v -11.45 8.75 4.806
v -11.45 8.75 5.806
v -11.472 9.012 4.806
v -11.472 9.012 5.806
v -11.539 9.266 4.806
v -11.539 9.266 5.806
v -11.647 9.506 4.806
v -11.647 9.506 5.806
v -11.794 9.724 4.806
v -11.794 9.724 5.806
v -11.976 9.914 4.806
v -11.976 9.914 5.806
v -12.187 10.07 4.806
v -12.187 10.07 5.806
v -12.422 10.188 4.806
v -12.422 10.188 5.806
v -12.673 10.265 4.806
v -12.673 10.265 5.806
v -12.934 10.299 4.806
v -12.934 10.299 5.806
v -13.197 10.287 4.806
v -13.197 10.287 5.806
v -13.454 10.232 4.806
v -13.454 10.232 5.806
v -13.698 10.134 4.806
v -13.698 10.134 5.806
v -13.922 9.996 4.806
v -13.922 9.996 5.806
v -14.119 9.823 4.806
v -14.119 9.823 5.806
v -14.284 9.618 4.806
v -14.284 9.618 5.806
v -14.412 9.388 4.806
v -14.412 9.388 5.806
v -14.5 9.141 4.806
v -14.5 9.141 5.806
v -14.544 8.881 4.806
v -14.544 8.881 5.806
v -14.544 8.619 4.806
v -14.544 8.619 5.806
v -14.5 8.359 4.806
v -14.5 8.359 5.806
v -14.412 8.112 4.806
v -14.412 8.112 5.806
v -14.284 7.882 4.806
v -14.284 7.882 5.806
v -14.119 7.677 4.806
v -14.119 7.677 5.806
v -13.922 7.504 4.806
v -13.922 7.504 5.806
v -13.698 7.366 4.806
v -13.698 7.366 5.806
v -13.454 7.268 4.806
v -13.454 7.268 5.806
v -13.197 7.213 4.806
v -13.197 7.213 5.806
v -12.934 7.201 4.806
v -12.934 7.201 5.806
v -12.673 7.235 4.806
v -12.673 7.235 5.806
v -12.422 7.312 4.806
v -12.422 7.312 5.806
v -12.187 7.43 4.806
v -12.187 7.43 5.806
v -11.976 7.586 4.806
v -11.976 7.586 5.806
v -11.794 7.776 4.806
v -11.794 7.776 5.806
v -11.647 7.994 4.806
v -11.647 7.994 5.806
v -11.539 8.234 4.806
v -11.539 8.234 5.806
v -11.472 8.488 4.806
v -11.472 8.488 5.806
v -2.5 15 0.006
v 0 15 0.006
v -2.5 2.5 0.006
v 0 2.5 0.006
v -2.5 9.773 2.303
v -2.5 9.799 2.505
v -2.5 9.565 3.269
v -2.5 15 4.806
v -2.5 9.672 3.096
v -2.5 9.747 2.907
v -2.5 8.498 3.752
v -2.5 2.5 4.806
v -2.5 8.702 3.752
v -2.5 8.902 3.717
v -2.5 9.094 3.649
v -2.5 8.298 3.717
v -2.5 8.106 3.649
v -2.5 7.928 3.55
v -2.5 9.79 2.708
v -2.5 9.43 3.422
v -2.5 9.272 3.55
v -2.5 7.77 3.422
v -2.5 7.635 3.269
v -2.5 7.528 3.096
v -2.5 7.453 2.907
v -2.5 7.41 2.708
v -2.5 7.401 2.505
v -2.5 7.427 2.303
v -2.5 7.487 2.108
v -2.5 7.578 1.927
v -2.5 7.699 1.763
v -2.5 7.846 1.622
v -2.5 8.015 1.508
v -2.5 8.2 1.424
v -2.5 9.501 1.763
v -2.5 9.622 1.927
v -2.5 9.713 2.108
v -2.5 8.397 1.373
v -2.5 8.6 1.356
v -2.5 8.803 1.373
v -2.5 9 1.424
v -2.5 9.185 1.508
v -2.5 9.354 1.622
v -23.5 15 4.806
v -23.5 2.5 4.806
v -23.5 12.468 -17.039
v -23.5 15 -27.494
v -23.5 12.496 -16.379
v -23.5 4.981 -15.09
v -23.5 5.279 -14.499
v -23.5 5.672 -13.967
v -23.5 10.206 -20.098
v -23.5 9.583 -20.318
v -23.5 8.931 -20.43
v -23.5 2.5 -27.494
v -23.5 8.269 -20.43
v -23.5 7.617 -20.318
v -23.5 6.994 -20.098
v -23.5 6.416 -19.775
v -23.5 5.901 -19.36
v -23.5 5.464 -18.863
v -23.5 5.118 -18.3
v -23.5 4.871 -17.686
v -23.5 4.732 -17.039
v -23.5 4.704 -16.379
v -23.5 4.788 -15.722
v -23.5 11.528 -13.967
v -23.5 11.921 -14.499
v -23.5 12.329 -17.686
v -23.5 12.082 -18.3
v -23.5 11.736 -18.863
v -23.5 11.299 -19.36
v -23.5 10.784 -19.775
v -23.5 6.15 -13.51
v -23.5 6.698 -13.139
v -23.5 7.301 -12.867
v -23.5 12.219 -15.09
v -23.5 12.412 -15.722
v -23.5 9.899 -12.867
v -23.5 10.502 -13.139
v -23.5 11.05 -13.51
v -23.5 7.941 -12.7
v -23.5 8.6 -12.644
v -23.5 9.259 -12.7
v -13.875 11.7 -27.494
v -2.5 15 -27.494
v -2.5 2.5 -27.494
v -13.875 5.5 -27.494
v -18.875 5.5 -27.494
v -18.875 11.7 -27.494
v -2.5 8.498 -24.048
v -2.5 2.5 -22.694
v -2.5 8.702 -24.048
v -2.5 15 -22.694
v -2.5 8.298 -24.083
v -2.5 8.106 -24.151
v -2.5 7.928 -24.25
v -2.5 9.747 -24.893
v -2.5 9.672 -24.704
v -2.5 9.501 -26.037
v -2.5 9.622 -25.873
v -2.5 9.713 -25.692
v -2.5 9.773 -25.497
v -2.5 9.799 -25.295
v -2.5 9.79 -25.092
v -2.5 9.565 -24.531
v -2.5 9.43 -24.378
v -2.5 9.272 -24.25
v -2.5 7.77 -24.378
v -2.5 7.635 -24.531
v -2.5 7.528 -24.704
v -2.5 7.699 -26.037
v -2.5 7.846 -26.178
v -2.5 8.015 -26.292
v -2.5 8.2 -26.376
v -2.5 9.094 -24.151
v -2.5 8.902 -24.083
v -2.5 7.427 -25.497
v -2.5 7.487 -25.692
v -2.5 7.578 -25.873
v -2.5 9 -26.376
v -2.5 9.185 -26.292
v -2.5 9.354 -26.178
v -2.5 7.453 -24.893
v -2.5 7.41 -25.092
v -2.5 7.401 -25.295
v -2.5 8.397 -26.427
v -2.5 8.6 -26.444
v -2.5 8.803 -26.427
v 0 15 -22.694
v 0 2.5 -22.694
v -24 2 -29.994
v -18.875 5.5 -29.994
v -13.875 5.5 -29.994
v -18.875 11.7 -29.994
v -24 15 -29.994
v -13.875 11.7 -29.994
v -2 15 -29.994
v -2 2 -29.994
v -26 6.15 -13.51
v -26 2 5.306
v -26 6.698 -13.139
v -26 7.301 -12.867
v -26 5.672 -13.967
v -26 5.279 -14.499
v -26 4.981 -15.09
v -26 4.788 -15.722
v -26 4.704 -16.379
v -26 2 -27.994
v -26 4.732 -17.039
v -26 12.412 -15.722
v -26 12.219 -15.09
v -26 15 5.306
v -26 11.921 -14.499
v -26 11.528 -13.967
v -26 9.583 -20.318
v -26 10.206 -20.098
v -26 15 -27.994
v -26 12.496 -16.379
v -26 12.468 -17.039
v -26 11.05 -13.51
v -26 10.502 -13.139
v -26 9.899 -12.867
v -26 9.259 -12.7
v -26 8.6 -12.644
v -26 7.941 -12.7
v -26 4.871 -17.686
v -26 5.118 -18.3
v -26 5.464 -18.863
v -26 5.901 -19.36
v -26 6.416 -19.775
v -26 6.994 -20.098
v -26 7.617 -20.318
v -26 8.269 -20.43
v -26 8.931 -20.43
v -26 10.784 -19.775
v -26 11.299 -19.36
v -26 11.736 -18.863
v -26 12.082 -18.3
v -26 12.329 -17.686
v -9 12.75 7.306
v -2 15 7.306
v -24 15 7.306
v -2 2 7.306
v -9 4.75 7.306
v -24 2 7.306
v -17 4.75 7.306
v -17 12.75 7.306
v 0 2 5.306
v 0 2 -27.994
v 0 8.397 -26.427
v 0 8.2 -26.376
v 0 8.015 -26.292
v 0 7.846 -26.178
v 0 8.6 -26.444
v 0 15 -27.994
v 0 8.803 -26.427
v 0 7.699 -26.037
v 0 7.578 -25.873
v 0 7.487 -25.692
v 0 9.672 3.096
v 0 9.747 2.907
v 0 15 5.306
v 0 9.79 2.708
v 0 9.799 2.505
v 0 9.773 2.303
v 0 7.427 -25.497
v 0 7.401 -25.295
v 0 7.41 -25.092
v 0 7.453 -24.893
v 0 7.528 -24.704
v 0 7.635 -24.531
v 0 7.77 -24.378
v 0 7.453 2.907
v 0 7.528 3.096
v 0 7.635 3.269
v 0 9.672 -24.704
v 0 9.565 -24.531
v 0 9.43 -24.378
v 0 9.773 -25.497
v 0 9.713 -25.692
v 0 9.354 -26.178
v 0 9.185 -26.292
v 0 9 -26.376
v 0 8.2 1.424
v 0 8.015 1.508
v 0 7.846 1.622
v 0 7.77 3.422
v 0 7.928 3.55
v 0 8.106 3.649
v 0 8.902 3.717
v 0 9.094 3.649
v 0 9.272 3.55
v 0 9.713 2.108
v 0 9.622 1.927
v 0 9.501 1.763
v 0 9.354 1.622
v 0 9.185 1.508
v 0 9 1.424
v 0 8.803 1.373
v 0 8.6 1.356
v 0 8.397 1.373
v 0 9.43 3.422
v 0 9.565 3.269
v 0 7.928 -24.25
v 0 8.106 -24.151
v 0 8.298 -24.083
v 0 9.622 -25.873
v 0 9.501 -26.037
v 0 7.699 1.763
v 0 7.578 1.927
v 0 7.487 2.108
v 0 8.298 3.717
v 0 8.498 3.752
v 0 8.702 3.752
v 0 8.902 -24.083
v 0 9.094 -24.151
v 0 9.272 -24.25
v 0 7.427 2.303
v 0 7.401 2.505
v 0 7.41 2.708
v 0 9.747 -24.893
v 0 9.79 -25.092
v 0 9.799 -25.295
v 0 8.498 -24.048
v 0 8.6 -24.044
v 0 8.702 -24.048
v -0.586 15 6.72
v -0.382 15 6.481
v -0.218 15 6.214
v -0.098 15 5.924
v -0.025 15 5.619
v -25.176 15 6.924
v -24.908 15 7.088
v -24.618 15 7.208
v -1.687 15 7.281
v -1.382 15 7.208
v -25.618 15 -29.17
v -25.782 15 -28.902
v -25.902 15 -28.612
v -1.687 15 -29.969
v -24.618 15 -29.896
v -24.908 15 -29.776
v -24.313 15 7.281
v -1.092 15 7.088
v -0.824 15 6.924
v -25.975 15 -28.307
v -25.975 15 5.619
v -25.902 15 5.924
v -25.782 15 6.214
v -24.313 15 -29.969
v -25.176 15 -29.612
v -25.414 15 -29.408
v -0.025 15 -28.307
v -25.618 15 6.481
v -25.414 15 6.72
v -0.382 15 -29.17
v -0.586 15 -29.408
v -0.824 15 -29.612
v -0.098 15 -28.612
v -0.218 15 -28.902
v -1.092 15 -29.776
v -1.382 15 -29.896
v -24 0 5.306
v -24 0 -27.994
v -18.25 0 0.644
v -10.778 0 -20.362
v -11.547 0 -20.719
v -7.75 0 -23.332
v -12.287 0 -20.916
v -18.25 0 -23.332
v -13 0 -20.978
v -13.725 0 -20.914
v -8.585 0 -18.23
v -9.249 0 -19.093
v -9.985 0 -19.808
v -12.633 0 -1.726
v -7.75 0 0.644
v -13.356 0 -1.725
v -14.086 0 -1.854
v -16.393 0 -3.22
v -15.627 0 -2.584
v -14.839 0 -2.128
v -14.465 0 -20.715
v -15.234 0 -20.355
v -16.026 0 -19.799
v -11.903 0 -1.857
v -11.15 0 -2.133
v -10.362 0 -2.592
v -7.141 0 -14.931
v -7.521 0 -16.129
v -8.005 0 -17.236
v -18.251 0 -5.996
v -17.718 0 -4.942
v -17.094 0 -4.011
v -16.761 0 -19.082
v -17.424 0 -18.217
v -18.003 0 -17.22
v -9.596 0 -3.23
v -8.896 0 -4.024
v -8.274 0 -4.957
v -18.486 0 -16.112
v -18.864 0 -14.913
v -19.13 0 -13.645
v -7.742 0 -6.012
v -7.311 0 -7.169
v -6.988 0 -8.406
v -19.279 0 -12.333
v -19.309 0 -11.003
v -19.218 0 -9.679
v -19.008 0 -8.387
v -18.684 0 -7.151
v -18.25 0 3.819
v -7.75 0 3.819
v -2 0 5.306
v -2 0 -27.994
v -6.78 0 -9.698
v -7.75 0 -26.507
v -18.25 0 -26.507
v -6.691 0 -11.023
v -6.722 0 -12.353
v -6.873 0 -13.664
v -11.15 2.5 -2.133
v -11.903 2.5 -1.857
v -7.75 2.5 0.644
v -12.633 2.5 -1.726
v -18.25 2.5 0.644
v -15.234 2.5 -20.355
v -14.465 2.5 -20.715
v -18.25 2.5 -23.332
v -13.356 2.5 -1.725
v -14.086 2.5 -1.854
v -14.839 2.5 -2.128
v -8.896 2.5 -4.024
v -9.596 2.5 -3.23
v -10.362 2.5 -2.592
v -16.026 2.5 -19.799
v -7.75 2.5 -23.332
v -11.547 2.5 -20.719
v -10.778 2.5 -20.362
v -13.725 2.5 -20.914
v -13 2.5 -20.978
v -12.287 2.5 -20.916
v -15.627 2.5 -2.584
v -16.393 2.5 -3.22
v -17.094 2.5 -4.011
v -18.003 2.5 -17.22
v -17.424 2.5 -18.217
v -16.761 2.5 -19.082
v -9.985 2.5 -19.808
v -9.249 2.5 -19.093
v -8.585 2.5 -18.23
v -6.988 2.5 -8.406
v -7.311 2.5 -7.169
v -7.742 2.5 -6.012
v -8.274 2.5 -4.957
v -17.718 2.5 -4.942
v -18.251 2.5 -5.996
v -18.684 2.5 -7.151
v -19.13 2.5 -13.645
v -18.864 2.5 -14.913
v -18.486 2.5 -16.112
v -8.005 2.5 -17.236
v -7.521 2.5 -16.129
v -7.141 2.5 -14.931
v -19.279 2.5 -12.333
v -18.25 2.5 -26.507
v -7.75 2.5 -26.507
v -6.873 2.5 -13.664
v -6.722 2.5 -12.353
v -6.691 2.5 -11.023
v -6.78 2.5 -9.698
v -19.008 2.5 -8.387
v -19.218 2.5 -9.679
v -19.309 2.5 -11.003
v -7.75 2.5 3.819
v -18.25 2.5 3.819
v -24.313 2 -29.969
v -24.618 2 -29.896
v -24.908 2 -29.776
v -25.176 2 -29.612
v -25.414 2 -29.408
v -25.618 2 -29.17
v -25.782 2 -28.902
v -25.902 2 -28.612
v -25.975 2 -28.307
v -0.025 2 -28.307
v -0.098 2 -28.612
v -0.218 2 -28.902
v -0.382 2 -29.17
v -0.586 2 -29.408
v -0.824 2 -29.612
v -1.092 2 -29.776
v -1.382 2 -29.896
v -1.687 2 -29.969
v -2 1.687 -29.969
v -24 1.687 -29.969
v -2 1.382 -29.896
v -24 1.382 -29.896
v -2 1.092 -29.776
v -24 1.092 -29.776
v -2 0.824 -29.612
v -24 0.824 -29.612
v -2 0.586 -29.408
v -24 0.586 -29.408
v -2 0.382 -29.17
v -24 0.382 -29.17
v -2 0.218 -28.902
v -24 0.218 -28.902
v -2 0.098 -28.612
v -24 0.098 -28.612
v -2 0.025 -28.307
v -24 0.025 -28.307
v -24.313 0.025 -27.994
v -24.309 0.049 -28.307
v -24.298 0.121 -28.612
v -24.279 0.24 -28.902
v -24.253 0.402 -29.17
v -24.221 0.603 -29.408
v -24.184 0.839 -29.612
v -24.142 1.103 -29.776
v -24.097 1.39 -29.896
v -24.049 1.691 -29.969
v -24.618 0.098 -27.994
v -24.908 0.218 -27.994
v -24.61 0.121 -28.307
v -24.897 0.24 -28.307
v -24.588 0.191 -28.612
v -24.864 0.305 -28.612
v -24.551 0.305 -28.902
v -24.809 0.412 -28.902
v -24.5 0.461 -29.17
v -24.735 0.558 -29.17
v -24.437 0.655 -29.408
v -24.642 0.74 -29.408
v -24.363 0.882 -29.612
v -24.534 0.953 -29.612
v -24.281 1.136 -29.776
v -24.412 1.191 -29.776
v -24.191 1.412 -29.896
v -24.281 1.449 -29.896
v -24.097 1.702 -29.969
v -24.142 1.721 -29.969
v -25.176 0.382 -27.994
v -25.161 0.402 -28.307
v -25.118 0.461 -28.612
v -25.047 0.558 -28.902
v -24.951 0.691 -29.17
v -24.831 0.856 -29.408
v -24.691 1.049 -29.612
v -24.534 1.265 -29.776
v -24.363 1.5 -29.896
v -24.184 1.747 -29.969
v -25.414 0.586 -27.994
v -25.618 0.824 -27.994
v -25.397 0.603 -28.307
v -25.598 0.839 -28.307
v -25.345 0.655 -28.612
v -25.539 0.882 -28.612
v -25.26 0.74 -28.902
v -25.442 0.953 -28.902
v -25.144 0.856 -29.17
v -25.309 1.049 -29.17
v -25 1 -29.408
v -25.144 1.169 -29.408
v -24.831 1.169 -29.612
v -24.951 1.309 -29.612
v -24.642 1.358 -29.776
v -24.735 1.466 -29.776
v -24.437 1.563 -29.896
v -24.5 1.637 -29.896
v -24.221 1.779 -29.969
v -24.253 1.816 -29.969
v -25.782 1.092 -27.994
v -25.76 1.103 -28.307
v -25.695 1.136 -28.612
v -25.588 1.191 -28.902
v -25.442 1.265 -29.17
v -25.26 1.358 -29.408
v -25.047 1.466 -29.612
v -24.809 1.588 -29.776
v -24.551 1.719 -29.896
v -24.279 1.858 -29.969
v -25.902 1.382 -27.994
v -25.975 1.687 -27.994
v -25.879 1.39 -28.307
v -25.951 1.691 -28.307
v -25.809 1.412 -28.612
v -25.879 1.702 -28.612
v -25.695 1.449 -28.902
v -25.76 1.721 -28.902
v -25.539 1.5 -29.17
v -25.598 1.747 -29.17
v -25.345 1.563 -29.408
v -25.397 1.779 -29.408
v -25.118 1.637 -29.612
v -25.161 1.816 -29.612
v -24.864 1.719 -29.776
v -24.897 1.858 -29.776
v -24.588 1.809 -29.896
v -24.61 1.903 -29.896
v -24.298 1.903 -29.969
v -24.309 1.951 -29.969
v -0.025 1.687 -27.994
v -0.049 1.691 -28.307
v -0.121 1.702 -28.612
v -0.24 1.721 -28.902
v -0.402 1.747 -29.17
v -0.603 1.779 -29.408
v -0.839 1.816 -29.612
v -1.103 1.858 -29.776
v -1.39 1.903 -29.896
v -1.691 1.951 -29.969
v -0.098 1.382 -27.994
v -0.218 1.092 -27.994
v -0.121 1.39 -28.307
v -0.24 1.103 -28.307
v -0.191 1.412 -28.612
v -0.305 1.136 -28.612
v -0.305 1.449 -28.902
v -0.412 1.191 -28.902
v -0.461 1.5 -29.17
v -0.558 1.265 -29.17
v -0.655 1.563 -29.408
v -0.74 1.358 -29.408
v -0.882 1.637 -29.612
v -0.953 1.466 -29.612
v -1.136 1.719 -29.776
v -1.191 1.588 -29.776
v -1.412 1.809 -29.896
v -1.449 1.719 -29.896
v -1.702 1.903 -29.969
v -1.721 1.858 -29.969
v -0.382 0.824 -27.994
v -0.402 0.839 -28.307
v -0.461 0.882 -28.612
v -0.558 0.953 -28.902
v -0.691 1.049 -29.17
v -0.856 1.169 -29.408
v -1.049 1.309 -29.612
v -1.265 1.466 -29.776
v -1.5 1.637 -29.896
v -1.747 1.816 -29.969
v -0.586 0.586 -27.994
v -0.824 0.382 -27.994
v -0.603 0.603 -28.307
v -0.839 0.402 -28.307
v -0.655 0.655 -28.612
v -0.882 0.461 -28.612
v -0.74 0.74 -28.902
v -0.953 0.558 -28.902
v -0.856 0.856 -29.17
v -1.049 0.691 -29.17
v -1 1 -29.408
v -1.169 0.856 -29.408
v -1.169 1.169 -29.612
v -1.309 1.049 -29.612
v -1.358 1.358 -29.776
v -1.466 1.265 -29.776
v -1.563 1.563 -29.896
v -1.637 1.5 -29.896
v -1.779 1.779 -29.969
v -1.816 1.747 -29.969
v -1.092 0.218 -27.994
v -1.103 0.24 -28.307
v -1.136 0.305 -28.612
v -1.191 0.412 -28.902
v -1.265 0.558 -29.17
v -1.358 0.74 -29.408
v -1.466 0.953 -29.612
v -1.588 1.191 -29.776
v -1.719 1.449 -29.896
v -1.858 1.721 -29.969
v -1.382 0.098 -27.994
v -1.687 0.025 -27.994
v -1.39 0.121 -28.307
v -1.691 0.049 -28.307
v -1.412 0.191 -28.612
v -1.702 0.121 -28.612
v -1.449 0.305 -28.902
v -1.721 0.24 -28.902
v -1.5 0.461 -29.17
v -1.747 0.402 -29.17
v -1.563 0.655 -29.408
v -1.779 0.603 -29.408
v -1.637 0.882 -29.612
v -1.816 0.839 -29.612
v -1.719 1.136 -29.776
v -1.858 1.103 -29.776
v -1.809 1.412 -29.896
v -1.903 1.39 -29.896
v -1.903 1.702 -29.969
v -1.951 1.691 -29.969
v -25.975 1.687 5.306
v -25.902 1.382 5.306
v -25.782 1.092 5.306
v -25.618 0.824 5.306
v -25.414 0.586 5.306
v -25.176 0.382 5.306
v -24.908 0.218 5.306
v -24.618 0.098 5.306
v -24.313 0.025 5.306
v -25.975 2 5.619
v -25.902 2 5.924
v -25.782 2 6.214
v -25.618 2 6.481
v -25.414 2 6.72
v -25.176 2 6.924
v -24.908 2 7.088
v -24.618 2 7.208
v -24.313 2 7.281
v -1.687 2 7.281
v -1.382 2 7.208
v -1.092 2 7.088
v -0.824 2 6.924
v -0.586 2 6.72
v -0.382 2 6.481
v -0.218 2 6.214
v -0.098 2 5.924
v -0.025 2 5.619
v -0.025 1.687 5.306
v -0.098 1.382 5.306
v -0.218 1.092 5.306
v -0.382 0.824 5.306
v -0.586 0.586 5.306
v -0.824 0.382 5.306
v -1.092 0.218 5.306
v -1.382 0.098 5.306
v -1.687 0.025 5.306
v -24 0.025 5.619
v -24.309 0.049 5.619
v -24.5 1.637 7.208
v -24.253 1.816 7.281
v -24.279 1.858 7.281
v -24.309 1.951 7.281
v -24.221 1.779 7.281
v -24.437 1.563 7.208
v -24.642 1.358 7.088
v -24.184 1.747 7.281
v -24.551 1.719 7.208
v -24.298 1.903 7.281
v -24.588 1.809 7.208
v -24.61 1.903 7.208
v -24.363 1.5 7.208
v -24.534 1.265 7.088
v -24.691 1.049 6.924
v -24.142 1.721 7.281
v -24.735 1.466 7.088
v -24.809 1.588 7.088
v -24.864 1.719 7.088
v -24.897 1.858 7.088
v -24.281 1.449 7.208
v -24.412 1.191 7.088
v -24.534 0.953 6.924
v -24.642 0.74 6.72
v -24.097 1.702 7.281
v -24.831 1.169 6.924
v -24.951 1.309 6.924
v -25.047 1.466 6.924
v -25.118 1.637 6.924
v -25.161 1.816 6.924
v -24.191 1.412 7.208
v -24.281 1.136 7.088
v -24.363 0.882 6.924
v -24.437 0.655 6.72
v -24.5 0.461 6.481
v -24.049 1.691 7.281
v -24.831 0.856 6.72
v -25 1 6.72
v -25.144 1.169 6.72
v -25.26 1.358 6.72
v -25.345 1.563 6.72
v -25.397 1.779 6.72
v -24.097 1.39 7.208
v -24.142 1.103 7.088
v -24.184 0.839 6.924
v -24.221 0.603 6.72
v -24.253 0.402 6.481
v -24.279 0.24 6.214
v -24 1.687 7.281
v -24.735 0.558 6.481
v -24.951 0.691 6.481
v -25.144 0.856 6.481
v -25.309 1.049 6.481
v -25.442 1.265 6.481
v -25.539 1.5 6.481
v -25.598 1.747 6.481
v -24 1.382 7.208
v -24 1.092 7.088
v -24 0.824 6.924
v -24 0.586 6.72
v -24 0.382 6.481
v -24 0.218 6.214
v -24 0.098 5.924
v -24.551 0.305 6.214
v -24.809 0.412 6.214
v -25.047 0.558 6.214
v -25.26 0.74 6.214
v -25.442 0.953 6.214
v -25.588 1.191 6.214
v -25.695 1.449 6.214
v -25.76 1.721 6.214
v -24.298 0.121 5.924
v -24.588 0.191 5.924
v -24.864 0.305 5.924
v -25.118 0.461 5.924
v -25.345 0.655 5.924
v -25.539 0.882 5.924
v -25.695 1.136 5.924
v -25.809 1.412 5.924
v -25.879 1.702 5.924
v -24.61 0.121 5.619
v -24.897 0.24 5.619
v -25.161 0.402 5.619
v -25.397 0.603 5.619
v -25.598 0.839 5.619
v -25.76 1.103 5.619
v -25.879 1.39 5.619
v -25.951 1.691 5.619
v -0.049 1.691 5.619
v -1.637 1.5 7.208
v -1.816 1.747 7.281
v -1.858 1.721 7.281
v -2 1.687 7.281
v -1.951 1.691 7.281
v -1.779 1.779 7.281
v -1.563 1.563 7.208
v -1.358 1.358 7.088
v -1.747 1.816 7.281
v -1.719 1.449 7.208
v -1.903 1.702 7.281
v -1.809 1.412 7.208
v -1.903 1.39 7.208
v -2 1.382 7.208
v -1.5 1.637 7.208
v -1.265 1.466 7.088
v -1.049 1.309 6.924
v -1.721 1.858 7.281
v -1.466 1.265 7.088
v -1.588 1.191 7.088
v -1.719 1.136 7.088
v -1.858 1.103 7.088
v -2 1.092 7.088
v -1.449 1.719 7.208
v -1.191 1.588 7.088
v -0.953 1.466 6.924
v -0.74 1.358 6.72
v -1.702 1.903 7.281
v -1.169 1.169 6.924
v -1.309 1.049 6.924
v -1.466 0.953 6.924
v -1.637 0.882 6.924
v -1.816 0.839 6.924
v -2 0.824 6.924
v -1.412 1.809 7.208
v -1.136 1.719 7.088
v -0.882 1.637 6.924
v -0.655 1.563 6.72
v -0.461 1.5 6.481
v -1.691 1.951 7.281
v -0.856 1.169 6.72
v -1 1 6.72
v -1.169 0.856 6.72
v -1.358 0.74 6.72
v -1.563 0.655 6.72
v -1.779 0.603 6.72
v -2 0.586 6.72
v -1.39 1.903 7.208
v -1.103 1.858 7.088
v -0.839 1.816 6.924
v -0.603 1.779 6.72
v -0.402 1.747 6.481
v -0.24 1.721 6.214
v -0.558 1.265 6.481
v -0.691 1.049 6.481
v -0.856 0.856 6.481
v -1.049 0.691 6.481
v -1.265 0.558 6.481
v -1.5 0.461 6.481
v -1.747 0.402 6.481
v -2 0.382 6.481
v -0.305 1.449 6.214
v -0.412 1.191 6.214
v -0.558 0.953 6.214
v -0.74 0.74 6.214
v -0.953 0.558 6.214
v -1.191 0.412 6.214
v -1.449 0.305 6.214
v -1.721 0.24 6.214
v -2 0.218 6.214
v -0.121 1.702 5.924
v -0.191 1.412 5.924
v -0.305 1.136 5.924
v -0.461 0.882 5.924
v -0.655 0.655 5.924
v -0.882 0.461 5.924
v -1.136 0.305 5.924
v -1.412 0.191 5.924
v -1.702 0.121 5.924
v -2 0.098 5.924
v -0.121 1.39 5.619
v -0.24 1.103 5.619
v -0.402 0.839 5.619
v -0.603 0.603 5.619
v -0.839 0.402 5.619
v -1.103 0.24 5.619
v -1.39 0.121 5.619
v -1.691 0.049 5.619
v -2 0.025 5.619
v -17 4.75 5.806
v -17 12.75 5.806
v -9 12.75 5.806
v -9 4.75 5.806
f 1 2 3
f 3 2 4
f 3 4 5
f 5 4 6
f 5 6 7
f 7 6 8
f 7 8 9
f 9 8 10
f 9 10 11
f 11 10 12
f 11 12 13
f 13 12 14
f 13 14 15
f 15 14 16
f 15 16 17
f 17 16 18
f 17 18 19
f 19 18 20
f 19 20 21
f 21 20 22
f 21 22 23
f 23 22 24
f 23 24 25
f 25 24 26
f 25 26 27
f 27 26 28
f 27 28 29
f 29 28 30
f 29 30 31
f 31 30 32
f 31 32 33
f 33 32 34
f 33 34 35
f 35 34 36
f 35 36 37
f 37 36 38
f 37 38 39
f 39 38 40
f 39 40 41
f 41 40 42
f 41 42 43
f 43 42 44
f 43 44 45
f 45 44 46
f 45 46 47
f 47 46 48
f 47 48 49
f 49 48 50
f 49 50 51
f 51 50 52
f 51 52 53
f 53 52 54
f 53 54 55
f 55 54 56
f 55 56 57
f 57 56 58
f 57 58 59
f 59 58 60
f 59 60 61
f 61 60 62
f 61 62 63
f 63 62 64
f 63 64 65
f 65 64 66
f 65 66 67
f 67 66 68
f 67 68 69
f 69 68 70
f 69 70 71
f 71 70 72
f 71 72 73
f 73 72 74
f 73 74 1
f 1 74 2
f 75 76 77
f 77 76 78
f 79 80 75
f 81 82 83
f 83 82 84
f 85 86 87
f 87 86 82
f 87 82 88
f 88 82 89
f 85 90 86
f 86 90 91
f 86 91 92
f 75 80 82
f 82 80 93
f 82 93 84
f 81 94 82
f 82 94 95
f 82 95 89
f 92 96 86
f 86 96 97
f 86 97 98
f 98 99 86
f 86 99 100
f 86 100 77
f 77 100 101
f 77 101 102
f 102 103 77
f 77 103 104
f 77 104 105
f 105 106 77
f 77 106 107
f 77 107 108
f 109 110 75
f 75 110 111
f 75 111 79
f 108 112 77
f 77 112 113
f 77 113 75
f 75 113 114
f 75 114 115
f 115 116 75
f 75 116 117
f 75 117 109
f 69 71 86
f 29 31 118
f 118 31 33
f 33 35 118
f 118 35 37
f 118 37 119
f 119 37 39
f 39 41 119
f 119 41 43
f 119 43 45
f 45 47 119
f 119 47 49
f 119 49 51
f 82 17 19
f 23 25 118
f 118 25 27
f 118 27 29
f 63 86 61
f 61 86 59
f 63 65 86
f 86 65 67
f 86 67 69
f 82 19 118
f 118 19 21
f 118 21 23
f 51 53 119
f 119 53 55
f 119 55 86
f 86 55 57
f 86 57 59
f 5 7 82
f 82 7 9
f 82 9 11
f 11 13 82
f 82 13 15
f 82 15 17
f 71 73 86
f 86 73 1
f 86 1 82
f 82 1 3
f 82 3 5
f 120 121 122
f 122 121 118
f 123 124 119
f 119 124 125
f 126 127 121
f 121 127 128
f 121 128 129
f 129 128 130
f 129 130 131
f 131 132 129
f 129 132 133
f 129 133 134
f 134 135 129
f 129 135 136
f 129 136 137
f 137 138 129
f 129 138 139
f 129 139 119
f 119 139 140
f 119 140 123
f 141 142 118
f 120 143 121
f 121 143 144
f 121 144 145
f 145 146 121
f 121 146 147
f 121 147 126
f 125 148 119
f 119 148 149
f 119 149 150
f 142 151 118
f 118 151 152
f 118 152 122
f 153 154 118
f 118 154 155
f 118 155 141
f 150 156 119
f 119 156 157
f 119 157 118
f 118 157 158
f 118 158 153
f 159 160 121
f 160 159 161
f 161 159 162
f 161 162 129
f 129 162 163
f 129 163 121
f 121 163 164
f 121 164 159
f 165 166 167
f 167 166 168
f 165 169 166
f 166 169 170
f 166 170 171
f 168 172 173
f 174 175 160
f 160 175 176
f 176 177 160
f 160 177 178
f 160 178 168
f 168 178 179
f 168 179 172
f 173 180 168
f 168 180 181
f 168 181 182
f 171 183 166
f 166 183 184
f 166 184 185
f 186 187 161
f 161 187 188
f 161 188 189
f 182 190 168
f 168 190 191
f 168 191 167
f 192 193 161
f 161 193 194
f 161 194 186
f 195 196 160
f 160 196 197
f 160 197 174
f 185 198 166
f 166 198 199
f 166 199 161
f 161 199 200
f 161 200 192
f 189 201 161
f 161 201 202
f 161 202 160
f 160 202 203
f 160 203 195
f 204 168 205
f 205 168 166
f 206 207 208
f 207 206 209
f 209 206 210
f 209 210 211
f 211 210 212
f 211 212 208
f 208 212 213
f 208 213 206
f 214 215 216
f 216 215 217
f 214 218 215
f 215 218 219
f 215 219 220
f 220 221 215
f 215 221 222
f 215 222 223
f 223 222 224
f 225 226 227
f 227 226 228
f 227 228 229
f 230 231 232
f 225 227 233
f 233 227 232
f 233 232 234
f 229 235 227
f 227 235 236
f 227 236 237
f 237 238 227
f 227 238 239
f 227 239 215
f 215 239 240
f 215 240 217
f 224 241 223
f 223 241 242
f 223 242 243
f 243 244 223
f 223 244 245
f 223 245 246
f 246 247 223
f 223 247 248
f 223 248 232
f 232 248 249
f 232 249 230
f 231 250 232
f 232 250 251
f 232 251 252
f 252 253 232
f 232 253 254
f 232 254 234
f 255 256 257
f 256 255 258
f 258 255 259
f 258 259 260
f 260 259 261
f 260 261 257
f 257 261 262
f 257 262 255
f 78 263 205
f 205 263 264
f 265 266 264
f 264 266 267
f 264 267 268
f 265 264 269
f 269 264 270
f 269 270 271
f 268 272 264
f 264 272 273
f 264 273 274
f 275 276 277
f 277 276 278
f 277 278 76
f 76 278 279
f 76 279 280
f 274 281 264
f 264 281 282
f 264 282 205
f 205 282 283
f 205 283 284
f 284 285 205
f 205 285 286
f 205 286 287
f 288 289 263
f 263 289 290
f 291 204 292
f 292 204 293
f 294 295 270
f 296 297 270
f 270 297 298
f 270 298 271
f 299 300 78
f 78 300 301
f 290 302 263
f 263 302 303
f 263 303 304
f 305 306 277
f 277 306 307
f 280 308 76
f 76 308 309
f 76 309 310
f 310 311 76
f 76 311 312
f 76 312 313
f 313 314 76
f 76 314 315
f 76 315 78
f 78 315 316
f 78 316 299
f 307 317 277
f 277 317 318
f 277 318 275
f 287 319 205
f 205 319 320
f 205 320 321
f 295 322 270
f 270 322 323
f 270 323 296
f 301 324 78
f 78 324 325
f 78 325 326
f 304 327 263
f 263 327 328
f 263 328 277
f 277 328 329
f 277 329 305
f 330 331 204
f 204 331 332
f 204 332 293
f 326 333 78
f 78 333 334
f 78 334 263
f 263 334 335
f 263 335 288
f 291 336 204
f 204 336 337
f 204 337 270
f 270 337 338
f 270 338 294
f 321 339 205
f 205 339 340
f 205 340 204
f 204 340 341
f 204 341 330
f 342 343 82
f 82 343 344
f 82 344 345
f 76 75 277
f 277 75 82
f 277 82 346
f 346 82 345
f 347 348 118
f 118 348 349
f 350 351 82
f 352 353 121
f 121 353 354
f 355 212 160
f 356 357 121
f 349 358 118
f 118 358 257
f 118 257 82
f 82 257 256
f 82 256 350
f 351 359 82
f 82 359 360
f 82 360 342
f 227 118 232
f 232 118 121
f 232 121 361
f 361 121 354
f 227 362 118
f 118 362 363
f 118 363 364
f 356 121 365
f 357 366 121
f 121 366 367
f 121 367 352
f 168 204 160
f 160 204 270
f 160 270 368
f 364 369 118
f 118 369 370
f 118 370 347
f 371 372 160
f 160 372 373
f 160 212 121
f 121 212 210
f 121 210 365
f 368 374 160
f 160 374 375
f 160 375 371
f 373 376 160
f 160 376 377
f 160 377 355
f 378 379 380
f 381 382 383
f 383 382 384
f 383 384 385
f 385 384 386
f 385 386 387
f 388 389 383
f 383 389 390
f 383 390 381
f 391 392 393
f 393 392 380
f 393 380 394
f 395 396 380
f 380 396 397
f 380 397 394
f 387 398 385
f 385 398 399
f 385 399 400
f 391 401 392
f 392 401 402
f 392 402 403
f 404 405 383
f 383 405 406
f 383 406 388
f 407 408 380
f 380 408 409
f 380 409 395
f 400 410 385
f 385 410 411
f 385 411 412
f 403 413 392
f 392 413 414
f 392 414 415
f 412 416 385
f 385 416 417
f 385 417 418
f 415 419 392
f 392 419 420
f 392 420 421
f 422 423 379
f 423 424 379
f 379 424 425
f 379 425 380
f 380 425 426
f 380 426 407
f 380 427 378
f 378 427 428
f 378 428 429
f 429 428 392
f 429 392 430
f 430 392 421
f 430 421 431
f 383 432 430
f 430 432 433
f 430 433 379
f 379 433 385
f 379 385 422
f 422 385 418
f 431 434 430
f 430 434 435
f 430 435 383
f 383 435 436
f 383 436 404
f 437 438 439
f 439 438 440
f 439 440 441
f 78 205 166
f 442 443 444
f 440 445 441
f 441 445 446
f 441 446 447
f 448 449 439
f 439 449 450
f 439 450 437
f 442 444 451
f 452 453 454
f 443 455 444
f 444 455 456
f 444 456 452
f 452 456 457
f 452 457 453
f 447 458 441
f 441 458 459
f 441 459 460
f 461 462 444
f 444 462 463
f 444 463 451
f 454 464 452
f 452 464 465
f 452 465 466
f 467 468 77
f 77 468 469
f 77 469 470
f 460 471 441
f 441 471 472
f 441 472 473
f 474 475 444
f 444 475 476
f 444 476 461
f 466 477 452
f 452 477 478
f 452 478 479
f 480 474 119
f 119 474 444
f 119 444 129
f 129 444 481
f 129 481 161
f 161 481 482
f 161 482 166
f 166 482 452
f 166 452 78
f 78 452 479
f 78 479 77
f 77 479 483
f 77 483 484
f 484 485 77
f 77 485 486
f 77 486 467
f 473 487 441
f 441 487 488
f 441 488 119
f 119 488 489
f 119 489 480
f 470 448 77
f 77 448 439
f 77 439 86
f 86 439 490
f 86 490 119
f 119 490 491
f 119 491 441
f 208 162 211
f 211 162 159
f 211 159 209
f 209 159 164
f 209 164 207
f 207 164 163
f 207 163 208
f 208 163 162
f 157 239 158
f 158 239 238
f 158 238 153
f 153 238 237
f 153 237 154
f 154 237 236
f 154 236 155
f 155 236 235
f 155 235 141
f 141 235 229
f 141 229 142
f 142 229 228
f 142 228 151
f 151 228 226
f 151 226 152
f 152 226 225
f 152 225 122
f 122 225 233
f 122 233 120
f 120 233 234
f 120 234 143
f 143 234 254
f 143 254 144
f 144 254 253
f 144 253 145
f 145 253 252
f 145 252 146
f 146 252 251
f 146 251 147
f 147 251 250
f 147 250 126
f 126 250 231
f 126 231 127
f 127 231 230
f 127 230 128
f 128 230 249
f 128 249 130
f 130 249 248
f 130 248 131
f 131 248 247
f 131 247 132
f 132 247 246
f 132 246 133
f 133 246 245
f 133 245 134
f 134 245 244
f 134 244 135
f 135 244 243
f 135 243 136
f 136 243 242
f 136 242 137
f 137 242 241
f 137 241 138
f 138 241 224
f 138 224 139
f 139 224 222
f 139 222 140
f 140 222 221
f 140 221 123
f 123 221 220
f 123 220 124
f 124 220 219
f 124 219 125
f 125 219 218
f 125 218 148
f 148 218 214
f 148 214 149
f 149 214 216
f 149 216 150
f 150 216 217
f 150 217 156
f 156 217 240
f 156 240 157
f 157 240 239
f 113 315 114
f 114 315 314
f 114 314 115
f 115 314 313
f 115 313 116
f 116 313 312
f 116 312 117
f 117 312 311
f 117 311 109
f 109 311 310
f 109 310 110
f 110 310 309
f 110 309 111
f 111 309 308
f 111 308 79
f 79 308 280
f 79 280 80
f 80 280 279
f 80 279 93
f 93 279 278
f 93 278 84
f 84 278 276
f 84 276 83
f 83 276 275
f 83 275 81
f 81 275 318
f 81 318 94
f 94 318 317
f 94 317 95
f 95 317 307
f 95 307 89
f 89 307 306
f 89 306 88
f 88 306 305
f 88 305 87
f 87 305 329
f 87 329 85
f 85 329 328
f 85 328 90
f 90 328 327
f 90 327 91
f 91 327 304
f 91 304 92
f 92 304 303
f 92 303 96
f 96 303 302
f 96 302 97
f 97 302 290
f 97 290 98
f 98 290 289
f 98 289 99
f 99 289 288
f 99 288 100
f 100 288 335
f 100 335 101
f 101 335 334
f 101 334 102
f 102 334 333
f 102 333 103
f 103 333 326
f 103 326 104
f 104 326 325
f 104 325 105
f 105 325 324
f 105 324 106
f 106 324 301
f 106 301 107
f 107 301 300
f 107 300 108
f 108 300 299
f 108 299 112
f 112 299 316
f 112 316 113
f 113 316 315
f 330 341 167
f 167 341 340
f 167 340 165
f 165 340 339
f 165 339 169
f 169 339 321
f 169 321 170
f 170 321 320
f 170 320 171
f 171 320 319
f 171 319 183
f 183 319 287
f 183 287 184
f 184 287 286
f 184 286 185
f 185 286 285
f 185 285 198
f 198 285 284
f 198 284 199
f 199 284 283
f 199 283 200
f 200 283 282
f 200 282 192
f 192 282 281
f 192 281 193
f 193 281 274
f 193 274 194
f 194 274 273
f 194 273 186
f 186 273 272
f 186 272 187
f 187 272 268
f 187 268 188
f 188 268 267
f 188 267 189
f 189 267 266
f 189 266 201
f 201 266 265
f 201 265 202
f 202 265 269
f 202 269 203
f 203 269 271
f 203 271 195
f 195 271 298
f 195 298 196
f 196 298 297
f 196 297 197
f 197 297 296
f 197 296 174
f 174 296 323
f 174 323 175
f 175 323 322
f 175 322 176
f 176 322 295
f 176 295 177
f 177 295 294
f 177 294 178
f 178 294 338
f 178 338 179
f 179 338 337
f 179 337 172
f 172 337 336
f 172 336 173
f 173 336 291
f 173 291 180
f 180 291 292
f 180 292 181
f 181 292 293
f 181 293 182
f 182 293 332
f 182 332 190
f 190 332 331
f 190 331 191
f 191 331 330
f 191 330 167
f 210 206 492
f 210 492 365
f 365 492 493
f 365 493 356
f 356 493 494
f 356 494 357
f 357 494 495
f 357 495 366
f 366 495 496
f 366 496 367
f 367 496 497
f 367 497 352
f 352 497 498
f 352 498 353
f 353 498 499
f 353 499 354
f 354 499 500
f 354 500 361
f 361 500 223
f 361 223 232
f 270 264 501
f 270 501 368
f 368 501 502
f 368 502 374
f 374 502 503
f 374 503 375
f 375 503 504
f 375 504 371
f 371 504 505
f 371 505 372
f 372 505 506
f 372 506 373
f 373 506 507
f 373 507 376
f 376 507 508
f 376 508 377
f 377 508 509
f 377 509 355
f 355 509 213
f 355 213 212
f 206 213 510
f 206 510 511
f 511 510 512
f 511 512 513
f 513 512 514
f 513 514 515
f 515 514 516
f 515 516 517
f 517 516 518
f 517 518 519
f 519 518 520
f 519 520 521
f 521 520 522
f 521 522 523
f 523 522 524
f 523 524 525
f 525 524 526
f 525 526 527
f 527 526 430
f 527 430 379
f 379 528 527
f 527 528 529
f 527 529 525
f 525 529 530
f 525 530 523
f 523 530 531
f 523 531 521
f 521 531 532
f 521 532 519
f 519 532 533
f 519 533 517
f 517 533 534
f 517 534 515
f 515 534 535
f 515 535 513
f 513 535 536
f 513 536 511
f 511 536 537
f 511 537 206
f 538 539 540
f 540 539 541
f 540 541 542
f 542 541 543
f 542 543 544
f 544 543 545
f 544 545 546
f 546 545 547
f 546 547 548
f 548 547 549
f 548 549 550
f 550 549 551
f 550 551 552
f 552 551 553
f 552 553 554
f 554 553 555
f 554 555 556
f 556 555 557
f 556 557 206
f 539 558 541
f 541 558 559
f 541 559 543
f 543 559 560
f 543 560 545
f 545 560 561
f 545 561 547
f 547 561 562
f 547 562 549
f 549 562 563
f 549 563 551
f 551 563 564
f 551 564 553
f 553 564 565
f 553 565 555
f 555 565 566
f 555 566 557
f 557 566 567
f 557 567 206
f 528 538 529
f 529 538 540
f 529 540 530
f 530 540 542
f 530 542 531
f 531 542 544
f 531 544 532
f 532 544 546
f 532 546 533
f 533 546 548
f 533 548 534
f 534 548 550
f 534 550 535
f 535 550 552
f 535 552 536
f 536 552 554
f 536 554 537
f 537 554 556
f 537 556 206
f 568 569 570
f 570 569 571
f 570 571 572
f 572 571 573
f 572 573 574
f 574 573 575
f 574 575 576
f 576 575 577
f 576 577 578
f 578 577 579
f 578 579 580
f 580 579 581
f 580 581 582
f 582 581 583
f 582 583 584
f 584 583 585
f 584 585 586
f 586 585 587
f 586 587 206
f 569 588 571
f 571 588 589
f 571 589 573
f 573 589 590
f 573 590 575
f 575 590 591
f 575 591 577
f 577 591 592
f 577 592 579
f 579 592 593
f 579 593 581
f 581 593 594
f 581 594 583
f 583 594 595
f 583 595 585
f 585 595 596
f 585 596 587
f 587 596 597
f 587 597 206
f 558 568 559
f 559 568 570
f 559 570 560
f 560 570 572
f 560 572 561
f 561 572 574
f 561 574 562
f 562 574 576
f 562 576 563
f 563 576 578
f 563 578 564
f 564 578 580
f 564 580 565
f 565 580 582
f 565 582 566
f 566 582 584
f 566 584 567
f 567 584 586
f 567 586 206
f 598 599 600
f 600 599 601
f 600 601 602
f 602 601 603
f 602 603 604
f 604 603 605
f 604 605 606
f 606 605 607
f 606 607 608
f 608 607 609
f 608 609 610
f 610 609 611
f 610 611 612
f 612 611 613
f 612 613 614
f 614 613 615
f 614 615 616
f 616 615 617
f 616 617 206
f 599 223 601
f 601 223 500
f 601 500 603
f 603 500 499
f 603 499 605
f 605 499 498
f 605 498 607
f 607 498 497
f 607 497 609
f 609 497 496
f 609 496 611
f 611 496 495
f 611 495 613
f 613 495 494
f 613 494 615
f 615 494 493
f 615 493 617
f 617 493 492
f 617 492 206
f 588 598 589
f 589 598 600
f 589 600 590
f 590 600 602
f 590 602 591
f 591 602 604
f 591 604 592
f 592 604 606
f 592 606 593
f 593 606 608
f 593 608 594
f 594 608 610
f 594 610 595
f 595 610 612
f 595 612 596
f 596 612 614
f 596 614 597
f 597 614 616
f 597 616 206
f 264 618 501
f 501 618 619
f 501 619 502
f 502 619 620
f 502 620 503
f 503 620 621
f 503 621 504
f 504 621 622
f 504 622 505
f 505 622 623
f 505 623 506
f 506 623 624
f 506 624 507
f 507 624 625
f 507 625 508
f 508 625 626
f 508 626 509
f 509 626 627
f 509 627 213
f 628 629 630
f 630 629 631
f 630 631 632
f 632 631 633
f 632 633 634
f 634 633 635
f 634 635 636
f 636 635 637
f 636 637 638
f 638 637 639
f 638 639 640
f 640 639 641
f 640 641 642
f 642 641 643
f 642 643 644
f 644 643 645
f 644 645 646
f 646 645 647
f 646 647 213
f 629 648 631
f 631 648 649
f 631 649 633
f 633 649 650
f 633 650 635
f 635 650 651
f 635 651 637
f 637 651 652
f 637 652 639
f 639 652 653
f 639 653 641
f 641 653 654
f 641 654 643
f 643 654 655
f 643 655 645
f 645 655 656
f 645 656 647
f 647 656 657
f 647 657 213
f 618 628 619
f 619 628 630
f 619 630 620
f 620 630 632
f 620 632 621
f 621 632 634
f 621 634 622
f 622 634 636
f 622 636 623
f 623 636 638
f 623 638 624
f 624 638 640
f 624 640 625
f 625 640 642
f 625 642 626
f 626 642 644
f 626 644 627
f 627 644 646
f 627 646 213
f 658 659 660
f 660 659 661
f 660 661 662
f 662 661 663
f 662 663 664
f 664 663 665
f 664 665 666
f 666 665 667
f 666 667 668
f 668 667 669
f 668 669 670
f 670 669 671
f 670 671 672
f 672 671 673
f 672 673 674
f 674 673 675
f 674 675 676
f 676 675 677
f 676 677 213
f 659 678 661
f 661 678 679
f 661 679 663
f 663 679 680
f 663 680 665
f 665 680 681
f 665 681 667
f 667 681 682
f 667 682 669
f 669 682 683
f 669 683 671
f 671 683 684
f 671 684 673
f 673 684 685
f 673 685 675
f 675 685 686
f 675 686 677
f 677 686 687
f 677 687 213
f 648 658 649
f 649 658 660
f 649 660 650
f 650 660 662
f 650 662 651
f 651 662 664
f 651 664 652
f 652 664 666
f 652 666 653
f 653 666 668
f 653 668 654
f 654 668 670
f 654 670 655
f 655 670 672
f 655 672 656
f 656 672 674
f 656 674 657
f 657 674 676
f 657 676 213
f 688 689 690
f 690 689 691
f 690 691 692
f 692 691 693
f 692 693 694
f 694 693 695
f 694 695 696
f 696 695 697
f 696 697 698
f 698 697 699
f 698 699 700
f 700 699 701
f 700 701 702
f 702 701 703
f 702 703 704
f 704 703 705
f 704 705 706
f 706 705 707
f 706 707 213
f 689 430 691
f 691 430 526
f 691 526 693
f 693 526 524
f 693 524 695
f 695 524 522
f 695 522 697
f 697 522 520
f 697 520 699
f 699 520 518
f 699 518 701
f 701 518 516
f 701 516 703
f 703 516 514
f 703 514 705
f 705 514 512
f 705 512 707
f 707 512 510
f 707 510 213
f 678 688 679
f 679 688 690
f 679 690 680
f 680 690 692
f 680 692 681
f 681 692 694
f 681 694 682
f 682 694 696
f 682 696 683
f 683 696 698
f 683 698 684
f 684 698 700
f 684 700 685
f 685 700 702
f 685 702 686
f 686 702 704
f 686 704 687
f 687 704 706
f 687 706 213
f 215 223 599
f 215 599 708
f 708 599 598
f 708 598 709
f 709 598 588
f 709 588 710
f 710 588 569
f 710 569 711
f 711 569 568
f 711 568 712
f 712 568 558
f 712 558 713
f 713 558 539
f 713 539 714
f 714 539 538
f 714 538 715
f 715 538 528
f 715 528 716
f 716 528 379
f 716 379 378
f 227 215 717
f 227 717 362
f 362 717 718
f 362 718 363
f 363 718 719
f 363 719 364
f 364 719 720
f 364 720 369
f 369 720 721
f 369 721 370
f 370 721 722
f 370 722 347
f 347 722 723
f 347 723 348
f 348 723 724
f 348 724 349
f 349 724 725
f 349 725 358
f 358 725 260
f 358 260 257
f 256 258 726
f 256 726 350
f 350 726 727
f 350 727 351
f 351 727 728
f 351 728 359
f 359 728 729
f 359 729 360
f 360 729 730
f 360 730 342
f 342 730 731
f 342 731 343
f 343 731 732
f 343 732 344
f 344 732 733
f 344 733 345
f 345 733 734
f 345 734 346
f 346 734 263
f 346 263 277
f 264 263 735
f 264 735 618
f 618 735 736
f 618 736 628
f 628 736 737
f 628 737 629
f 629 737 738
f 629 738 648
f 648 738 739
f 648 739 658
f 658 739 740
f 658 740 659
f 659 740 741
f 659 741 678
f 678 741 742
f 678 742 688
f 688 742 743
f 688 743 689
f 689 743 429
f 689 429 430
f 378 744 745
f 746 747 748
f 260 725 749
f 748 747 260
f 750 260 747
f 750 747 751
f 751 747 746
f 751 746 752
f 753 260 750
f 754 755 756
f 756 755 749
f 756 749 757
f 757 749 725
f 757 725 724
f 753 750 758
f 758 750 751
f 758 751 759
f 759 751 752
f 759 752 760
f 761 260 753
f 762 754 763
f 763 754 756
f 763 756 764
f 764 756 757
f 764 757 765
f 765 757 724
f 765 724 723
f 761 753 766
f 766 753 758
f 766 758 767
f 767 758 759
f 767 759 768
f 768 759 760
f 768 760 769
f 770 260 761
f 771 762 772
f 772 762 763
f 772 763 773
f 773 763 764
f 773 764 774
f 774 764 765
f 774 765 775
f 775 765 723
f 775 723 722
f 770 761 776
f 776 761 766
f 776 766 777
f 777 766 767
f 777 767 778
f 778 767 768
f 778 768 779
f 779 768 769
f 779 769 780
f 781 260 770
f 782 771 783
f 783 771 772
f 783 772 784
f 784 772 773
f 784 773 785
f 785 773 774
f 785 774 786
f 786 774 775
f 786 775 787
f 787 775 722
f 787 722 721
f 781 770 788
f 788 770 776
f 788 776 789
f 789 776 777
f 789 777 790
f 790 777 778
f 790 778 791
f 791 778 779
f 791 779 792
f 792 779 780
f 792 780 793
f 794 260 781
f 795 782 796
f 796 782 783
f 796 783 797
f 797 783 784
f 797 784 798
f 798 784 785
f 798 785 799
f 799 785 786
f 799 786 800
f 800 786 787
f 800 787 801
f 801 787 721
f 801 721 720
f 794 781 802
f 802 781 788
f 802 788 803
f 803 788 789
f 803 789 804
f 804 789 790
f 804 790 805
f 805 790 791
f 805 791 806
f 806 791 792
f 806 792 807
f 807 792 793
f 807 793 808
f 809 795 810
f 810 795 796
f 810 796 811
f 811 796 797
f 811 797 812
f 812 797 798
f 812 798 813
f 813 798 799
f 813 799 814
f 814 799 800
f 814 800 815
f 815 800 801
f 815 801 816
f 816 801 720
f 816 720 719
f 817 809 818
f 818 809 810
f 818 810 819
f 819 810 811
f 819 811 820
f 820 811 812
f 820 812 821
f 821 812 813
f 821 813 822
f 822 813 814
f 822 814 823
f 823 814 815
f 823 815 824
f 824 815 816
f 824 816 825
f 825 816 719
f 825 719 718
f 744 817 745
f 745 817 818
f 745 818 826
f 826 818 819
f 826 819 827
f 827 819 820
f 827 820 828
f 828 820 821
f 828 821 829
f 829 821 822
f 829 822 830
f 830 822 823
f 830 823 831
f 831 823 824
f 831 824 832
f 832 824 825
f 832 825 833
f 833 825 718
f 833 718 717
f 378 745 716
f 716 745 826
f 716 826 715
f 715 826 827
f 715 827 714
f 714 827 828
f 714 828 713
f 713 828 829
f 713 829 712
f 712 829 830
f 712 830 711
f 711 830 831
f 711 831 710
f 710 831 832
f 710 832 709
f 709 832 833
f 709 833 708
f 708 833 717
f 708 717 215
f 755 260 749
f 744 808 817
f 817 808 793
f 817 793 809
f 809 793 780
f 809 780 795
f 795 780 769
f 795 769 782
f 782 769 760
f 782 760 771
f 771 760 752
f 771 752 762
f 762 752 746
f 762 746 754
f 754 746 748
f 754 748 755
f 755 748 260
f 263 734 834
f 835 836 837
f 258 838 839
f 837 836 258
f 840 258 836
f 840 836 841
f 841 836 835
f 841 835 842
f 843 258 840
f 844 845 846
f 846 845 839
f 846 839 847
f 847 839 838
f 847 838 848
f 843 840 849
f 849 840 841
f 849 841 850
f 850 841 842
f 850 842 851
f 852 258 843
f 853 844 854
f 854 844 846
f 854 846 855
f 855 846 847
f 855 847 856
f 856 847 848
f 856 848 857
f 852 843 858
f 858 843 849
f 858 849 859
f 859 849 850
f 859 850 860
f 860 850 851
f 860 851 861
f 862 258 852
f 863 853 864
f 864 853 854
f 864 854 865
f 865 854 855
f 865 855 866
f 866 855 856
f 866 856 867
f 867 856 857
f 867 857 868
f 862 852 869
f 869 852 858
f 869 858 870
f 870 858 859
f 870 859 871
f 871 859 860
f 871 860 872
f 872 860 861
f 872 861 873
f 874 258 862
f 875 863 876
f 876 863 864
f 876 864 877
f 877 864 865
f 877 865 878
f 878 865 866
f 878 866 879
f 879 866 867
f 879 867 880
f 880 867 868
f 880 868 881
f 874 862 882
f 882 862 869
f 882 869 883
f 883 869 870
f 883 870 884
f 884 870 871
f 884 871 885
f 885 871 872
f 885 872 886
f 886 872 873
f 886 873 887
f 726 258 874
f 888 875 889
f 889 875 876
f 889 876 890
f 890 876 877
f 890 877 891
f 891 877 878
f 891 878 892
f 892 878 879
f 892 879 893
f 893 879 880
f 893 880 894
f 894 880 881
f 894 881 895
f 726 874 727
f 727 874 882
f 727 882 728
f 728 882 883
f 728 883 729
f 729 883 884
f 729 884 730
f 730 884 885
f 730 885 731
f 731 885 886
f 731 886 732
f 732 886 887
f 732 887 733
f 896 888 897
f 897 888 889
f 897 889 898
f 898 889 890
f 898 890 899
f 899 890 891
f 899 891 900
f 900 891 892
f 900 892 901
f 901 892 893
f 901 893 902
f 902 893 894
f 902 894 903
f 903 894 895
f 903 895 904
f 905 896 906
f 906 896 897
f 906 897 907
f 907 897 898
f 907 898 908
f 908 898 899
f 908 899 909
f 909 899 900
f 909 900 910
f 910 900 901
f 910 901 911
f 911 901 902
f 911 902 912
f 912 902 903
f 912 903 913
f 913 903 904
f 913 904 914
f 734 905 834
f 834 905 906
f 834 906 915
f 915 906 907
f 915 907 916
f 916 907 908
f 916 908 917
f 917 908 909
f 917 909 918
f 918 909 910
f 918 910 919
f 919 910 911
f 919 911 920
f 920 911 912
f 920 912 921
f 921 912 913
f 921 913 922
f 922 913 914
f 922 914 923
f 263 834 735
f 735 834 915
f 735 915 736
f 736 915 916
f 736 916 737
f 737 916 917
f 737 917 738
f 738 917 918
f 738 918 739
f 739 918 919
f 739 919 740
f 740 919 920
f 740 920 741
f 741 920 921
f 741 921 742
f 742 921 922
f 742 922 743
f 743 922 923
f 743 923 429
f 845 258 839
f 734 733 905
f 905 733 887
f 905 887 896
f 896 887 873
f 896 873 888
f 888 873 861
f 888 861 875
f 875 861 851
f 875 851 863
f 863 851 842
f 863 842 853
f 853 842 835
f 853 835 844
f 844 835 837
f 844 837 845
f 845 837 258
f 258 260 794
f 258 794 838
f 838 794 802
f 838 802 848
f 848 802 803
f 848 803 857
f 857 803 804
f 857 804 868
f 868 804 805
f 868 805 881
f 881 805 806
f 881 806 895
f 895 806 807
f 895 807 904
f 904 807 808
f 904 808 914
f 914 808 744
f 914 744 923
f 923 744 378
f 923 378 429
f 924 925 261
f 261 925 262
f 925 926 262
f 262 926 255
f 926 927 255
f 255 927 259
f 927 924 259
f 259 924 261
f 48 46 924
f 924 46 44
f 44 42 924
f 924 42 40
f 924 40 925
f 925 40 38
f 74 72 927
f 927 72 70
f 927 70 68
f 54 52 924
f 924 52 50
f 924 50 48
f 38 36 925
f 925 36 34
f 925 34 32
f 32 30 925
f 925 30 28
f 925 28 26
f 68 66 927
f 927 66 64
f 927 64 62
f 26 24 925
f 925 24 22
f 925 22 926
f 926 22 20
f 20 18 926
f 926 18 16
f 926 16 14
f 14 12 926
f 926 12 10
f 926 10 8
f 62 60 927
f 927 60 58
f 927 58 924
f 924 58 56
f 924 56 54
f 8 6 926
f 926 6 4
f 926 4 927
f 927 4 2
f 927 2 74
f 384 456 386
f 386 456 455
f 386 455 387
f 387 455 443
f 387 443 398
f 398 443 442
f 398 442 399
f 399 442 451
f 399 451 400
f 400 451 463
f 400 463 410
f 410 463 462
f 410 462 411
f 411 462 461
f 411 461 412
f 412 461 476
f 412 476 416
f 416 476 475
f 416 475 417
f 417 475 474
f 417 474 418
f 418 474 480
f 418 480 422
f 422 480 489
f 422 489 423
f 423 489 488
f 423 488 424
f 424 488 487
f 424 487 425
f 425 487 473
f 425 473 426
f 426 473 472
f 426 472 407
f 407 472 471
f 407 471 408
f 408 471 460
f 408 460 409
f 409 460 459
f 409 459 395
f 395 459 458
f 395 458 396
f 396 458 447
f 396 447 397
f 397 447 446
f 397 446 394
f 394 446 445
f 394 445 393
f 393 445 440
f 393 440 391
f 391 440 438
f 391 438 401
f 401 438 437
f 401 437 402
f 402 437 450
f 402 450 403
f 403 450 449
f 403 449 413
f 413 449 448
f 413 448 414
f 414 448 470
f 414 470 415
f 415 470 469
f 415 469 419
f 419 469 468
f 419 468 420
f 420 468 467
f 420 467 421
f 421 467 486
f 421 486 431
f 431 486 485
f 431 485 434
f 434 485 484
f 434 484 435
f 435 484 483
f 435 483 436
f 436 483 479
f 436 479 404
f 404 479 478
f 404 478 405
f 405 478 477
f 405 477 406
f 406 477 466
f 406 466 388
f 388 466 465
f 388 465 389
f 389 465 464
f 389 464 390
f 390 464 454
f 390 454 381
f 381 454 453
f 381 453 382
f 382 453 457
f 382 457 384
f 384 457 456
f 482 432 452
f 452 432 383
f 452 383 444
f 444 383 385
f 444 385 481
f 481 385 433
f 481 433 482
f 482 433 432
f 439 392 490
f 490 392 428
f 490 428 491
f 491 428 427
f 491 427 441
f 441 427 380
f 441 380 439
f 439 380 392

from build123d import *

# Parameters (mm, degrees)
BOSS_EXTRUDE1_DEPTH = 15
SKETCH2_W           = 32.3
SKETCH2_H           = 2.5
BOSS_EXTRUDE2_DEPTH = 23.5
SKETCH3_W           = 5
SKETCH3_H           = 6.2
CUT_EXTRUDE1_DEPTH  = 12.5
CUT_EXTRUDE2_REACH  = 28
SKETCH4_R           = 3.9
SKETCH5_R           = 1.2
CUT_EXTRUDE3_DEPTH  = 2.5
CUT_EXTRUDE4_REACH  = 39.3
SKETCH6_R           = 1.55
FILLET2_R           = 2
SKETCH7_W           = 8
SKETCH7_H           = 8
SKETCH7_R           = 1.55
CUT_EXTRUDE5_DEPTH  = 1.5
CUT_EXTRUDE6_REACH  = 4.5
SKETCH8_RX          = 9.634046057
SKETCH8_RY          = 6.312870092
SKETCH8_W           = 10.5
SKETCH8_H           = 3.175


with BuildPart() as part:
    # Sketch1 → Boss-Extrude1 (new body)
    with BuildSketch(Plane(origin=(0, 0, 0), x_dir=(1, 0, 0), z_dir=(0, 1, 0))):
        Polygon((0, 29.994099724), (-26, 29.994099724), (-26, -7.305900276), (0, -7.305900276), (0, -0.005900276), (-2.5, -0.005900276), (-2.5, -4.805900276), (-23.5, -4.805900276), (-23.5, 27.494099724), (-2.5, 27.494099724), (-2.5, 22.694099724), (0, 22.694099724), align=None)
    extrude(amount=BOSS_EXTRUDE1_DEPTH)

    # Sketch2 → Boss-Extrude2 (add, through all)
    with BuildSketch(Plane(origin=(-23.5, 0, 0), x_dir=(0, 0, -1), z_dir=(1, 0, 0))):
        with Locations((11.344099724, 1.25)):
            Rectangle(SKETCH2_W, SKETCH2_H)
    extrude(amount=BOSS_EXTRUDE2_DEPTH)

    # Sketch3 → Cut-Extrude1 (cut)
    with BuildSketch(Plane(origin=(0, 0, -29.994099724), x_dir=(-1, 0, 0), z_dir=(0, 0, -1))):
        with Locations((16.375, 8.6)):
            Rectangle(SKETCH3_W, SKETCH3_H)
    extrude(amount=-CUT_EXTRUDE1_DEPTH, mode=Mode.SUBTRACT)

    # Sketch4 → Cut-Extrude2 (cut, up to next)
    with BuildSketch(Plane.ZY.offset(26), mode=Mode.PRIVATE) as cut_extrude2_sk1:
        with Locations((-16.544099724, 8.6)):
            Circle(SKETCH4_R)
    cut_extrude2_tool1 = extrude(cut_extrude2_sk1.sketch, amount=-CUT_EXTRUDE2_REACH, mode=Mode.PRIVATE) & part.part
    add(cut_extrude2_tool1.solids().sort_by_distance((-26, 8.6, -16.5441))[0], mode=Mode.SUBTRACT)

    # Sketch5 → Cut-Extrude3 (cut)
    with BuildSketch(Plane(origin=(0, 0, 0), x_dir=(0, 0, -1), z_dir=(1, 0, 0))):
        with Locations((-2.555900276, 8.6)):
            Circle(SKETCH5_R)
    cut_extrude3 = extrude(amount=-CUT_EXTRUDE3_DEPTH, mode=Mode.SUBTRACT)

    # Mirror1: Cut-Extrude3 across plane
    add(cut_extrude3.mirror(Plane.XY.offset(-11.344099724)), mode=Mode.SUBTRACT)

    # Sketch6 → Cut-Extrude4 (cut, up to next)
    with BuildSketch(Plane.XY.offset(7.305900276), mode=Mode.PRIVATE) as cut_extrude4_sk1:
        with Locations((-13, 8.75)):
            Circle(SKETCH6_R)
    cut_extrude4_tool1 = extrude(cut_extrude4_sk1.sketch, amount=-CUT_EXTRUDE4_REACH, mode=Mode.PRIVATE) & part.part
    add(cut_extrude4_tool1.solids().sort_by_distance((-13, 8.75, 7.3059))[0], mode=Mode.SUBTRACT)

    # Fillet2
    fillet2_edges = [part.edges().sort_by_distance(p)[0] for p in [
        (0, 0, -11.344099724),
        (-13, 0, 7.305900276),
        (-26, 0, -11.344099724),
        (-13, 0, -29.994099724),
        (0, 7.5, 7.305900276),
        (-26, 7.5, 7.305900276),
        (-26, 7.5, -29.994099724),
        (0, 7.5, -29.994099724),
    ]]
    fillet(fillet2_edges, radius=FILLET2_R)

    # Sketch7 → Cut-Extrude5 (cut)
    with BuildSketch(Plane.XY.offset(7.305900276)):
        with Locations((-13, 8.75)):
            Rectangle(SKETCH7_W, SKETCH7_H)
        with Locations((-13, 8.75)):
            Circle(SKETCH7_R, mode=Mode.SUBTRACT)
    extrude(amount=-CUT_EXTRUDE5_DEPTH, mode=Mode.SUBTRACT)

    # Sketch8 → Cut-Extrude6 (cut, up to next)
    with BuildSketch(Plane(origin=(0, 2.5, 0), x_dir=(1, 0, 0), z_dir=(0, 1, 0)), mode=Mode.PRIVATE) as cut_extrude6_sk1:
        with Locations(Location((-13, 11.344099724), (0, 0, 90))):
            Ellipse(SKETCH8_RX, SKETCH8_RY)
    cut_extrude6_tool1 = extrude(cut_extrude6_sk1.sketch, amount=-CUT_EXTRUDE6_REACH, mode=Mode.PRIVATE) & part.part
    add(cut_extrude6_tool1.solids().sort_by_distance((-13, 2.5, -11.3441))[0], mode=Mode.SUBTRACT)
    # Sketch8 → Cut-Extrude6 (cut, up to next)
    with BuildSketch(Plane(origin=(0, 2.5, 0), x_dir=(1, 0, 0), z_dir=(0, 1, 0)), mode=Mode.PRIVATE) as cut_extrude6_sk2:
        with Locations((-13, -2.231384095)):
            Rectangle(SKETCH8_W, SKETCH8_H)
    cut_extrude6_tool2 = extrude(cut_extrude6_sk2.sketch, amount=-CUT_EXTRUDE6_REACH, mode=Mode.PRIVATE) & part.part
    add(cut_extrude6_tool2.solids().sort_by_distance((-13, 2.5, 2.231384))[0], mode=Mode.SUBTRACT)
    # Sketch8 → Cut-Extrude6 (cut, up to next)
    with BuildSketch(Plane(origin=(0, 2.5, 0), x_dir=(1, 0, 0), z_dir=(0, 1, 0)), mode=Mode.PRIVATE) as cut_extrude6_sk3:
        with Locations((-13, 24.919583542)):
            Rectangle(SKETCH8_W, SKETCH8_H)
    cut_extrude6_tool3 = extrude(cut_extrude6_sk3.sketch, amount=-CUT_EXTRUDE6_REACH, mode=Mode.PRIVATE) & part.part
    add(cut_extrude6_tool3.solids().sort_by_distance((-13, 2.5, -24.919584))[0], mode=Mode.SUBTRACT)


solid = part.part
